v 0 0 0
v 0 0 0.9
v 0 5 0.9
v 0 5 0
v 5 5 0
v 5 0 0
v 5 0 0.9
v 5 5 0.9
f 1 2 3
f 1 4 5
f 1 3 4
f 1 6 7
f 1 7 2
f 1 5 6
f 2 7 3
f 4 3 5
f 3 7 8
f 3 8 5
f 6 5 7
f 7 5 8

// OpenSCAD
/* Warning, this is a very basic generator with a lot of approximation 
input data : [VQFN, UBB, 5x5x0.9mm, 32, , C, C04-21395C]
generated by com.zoubworld.electronics.cad.model3d.Basic
Date : Sun Feb 15 10:50:49 CET 2026
*/

//body
color("black")
translate([0,0,0])
cube([5.0,5.0,0.9], center=false);
